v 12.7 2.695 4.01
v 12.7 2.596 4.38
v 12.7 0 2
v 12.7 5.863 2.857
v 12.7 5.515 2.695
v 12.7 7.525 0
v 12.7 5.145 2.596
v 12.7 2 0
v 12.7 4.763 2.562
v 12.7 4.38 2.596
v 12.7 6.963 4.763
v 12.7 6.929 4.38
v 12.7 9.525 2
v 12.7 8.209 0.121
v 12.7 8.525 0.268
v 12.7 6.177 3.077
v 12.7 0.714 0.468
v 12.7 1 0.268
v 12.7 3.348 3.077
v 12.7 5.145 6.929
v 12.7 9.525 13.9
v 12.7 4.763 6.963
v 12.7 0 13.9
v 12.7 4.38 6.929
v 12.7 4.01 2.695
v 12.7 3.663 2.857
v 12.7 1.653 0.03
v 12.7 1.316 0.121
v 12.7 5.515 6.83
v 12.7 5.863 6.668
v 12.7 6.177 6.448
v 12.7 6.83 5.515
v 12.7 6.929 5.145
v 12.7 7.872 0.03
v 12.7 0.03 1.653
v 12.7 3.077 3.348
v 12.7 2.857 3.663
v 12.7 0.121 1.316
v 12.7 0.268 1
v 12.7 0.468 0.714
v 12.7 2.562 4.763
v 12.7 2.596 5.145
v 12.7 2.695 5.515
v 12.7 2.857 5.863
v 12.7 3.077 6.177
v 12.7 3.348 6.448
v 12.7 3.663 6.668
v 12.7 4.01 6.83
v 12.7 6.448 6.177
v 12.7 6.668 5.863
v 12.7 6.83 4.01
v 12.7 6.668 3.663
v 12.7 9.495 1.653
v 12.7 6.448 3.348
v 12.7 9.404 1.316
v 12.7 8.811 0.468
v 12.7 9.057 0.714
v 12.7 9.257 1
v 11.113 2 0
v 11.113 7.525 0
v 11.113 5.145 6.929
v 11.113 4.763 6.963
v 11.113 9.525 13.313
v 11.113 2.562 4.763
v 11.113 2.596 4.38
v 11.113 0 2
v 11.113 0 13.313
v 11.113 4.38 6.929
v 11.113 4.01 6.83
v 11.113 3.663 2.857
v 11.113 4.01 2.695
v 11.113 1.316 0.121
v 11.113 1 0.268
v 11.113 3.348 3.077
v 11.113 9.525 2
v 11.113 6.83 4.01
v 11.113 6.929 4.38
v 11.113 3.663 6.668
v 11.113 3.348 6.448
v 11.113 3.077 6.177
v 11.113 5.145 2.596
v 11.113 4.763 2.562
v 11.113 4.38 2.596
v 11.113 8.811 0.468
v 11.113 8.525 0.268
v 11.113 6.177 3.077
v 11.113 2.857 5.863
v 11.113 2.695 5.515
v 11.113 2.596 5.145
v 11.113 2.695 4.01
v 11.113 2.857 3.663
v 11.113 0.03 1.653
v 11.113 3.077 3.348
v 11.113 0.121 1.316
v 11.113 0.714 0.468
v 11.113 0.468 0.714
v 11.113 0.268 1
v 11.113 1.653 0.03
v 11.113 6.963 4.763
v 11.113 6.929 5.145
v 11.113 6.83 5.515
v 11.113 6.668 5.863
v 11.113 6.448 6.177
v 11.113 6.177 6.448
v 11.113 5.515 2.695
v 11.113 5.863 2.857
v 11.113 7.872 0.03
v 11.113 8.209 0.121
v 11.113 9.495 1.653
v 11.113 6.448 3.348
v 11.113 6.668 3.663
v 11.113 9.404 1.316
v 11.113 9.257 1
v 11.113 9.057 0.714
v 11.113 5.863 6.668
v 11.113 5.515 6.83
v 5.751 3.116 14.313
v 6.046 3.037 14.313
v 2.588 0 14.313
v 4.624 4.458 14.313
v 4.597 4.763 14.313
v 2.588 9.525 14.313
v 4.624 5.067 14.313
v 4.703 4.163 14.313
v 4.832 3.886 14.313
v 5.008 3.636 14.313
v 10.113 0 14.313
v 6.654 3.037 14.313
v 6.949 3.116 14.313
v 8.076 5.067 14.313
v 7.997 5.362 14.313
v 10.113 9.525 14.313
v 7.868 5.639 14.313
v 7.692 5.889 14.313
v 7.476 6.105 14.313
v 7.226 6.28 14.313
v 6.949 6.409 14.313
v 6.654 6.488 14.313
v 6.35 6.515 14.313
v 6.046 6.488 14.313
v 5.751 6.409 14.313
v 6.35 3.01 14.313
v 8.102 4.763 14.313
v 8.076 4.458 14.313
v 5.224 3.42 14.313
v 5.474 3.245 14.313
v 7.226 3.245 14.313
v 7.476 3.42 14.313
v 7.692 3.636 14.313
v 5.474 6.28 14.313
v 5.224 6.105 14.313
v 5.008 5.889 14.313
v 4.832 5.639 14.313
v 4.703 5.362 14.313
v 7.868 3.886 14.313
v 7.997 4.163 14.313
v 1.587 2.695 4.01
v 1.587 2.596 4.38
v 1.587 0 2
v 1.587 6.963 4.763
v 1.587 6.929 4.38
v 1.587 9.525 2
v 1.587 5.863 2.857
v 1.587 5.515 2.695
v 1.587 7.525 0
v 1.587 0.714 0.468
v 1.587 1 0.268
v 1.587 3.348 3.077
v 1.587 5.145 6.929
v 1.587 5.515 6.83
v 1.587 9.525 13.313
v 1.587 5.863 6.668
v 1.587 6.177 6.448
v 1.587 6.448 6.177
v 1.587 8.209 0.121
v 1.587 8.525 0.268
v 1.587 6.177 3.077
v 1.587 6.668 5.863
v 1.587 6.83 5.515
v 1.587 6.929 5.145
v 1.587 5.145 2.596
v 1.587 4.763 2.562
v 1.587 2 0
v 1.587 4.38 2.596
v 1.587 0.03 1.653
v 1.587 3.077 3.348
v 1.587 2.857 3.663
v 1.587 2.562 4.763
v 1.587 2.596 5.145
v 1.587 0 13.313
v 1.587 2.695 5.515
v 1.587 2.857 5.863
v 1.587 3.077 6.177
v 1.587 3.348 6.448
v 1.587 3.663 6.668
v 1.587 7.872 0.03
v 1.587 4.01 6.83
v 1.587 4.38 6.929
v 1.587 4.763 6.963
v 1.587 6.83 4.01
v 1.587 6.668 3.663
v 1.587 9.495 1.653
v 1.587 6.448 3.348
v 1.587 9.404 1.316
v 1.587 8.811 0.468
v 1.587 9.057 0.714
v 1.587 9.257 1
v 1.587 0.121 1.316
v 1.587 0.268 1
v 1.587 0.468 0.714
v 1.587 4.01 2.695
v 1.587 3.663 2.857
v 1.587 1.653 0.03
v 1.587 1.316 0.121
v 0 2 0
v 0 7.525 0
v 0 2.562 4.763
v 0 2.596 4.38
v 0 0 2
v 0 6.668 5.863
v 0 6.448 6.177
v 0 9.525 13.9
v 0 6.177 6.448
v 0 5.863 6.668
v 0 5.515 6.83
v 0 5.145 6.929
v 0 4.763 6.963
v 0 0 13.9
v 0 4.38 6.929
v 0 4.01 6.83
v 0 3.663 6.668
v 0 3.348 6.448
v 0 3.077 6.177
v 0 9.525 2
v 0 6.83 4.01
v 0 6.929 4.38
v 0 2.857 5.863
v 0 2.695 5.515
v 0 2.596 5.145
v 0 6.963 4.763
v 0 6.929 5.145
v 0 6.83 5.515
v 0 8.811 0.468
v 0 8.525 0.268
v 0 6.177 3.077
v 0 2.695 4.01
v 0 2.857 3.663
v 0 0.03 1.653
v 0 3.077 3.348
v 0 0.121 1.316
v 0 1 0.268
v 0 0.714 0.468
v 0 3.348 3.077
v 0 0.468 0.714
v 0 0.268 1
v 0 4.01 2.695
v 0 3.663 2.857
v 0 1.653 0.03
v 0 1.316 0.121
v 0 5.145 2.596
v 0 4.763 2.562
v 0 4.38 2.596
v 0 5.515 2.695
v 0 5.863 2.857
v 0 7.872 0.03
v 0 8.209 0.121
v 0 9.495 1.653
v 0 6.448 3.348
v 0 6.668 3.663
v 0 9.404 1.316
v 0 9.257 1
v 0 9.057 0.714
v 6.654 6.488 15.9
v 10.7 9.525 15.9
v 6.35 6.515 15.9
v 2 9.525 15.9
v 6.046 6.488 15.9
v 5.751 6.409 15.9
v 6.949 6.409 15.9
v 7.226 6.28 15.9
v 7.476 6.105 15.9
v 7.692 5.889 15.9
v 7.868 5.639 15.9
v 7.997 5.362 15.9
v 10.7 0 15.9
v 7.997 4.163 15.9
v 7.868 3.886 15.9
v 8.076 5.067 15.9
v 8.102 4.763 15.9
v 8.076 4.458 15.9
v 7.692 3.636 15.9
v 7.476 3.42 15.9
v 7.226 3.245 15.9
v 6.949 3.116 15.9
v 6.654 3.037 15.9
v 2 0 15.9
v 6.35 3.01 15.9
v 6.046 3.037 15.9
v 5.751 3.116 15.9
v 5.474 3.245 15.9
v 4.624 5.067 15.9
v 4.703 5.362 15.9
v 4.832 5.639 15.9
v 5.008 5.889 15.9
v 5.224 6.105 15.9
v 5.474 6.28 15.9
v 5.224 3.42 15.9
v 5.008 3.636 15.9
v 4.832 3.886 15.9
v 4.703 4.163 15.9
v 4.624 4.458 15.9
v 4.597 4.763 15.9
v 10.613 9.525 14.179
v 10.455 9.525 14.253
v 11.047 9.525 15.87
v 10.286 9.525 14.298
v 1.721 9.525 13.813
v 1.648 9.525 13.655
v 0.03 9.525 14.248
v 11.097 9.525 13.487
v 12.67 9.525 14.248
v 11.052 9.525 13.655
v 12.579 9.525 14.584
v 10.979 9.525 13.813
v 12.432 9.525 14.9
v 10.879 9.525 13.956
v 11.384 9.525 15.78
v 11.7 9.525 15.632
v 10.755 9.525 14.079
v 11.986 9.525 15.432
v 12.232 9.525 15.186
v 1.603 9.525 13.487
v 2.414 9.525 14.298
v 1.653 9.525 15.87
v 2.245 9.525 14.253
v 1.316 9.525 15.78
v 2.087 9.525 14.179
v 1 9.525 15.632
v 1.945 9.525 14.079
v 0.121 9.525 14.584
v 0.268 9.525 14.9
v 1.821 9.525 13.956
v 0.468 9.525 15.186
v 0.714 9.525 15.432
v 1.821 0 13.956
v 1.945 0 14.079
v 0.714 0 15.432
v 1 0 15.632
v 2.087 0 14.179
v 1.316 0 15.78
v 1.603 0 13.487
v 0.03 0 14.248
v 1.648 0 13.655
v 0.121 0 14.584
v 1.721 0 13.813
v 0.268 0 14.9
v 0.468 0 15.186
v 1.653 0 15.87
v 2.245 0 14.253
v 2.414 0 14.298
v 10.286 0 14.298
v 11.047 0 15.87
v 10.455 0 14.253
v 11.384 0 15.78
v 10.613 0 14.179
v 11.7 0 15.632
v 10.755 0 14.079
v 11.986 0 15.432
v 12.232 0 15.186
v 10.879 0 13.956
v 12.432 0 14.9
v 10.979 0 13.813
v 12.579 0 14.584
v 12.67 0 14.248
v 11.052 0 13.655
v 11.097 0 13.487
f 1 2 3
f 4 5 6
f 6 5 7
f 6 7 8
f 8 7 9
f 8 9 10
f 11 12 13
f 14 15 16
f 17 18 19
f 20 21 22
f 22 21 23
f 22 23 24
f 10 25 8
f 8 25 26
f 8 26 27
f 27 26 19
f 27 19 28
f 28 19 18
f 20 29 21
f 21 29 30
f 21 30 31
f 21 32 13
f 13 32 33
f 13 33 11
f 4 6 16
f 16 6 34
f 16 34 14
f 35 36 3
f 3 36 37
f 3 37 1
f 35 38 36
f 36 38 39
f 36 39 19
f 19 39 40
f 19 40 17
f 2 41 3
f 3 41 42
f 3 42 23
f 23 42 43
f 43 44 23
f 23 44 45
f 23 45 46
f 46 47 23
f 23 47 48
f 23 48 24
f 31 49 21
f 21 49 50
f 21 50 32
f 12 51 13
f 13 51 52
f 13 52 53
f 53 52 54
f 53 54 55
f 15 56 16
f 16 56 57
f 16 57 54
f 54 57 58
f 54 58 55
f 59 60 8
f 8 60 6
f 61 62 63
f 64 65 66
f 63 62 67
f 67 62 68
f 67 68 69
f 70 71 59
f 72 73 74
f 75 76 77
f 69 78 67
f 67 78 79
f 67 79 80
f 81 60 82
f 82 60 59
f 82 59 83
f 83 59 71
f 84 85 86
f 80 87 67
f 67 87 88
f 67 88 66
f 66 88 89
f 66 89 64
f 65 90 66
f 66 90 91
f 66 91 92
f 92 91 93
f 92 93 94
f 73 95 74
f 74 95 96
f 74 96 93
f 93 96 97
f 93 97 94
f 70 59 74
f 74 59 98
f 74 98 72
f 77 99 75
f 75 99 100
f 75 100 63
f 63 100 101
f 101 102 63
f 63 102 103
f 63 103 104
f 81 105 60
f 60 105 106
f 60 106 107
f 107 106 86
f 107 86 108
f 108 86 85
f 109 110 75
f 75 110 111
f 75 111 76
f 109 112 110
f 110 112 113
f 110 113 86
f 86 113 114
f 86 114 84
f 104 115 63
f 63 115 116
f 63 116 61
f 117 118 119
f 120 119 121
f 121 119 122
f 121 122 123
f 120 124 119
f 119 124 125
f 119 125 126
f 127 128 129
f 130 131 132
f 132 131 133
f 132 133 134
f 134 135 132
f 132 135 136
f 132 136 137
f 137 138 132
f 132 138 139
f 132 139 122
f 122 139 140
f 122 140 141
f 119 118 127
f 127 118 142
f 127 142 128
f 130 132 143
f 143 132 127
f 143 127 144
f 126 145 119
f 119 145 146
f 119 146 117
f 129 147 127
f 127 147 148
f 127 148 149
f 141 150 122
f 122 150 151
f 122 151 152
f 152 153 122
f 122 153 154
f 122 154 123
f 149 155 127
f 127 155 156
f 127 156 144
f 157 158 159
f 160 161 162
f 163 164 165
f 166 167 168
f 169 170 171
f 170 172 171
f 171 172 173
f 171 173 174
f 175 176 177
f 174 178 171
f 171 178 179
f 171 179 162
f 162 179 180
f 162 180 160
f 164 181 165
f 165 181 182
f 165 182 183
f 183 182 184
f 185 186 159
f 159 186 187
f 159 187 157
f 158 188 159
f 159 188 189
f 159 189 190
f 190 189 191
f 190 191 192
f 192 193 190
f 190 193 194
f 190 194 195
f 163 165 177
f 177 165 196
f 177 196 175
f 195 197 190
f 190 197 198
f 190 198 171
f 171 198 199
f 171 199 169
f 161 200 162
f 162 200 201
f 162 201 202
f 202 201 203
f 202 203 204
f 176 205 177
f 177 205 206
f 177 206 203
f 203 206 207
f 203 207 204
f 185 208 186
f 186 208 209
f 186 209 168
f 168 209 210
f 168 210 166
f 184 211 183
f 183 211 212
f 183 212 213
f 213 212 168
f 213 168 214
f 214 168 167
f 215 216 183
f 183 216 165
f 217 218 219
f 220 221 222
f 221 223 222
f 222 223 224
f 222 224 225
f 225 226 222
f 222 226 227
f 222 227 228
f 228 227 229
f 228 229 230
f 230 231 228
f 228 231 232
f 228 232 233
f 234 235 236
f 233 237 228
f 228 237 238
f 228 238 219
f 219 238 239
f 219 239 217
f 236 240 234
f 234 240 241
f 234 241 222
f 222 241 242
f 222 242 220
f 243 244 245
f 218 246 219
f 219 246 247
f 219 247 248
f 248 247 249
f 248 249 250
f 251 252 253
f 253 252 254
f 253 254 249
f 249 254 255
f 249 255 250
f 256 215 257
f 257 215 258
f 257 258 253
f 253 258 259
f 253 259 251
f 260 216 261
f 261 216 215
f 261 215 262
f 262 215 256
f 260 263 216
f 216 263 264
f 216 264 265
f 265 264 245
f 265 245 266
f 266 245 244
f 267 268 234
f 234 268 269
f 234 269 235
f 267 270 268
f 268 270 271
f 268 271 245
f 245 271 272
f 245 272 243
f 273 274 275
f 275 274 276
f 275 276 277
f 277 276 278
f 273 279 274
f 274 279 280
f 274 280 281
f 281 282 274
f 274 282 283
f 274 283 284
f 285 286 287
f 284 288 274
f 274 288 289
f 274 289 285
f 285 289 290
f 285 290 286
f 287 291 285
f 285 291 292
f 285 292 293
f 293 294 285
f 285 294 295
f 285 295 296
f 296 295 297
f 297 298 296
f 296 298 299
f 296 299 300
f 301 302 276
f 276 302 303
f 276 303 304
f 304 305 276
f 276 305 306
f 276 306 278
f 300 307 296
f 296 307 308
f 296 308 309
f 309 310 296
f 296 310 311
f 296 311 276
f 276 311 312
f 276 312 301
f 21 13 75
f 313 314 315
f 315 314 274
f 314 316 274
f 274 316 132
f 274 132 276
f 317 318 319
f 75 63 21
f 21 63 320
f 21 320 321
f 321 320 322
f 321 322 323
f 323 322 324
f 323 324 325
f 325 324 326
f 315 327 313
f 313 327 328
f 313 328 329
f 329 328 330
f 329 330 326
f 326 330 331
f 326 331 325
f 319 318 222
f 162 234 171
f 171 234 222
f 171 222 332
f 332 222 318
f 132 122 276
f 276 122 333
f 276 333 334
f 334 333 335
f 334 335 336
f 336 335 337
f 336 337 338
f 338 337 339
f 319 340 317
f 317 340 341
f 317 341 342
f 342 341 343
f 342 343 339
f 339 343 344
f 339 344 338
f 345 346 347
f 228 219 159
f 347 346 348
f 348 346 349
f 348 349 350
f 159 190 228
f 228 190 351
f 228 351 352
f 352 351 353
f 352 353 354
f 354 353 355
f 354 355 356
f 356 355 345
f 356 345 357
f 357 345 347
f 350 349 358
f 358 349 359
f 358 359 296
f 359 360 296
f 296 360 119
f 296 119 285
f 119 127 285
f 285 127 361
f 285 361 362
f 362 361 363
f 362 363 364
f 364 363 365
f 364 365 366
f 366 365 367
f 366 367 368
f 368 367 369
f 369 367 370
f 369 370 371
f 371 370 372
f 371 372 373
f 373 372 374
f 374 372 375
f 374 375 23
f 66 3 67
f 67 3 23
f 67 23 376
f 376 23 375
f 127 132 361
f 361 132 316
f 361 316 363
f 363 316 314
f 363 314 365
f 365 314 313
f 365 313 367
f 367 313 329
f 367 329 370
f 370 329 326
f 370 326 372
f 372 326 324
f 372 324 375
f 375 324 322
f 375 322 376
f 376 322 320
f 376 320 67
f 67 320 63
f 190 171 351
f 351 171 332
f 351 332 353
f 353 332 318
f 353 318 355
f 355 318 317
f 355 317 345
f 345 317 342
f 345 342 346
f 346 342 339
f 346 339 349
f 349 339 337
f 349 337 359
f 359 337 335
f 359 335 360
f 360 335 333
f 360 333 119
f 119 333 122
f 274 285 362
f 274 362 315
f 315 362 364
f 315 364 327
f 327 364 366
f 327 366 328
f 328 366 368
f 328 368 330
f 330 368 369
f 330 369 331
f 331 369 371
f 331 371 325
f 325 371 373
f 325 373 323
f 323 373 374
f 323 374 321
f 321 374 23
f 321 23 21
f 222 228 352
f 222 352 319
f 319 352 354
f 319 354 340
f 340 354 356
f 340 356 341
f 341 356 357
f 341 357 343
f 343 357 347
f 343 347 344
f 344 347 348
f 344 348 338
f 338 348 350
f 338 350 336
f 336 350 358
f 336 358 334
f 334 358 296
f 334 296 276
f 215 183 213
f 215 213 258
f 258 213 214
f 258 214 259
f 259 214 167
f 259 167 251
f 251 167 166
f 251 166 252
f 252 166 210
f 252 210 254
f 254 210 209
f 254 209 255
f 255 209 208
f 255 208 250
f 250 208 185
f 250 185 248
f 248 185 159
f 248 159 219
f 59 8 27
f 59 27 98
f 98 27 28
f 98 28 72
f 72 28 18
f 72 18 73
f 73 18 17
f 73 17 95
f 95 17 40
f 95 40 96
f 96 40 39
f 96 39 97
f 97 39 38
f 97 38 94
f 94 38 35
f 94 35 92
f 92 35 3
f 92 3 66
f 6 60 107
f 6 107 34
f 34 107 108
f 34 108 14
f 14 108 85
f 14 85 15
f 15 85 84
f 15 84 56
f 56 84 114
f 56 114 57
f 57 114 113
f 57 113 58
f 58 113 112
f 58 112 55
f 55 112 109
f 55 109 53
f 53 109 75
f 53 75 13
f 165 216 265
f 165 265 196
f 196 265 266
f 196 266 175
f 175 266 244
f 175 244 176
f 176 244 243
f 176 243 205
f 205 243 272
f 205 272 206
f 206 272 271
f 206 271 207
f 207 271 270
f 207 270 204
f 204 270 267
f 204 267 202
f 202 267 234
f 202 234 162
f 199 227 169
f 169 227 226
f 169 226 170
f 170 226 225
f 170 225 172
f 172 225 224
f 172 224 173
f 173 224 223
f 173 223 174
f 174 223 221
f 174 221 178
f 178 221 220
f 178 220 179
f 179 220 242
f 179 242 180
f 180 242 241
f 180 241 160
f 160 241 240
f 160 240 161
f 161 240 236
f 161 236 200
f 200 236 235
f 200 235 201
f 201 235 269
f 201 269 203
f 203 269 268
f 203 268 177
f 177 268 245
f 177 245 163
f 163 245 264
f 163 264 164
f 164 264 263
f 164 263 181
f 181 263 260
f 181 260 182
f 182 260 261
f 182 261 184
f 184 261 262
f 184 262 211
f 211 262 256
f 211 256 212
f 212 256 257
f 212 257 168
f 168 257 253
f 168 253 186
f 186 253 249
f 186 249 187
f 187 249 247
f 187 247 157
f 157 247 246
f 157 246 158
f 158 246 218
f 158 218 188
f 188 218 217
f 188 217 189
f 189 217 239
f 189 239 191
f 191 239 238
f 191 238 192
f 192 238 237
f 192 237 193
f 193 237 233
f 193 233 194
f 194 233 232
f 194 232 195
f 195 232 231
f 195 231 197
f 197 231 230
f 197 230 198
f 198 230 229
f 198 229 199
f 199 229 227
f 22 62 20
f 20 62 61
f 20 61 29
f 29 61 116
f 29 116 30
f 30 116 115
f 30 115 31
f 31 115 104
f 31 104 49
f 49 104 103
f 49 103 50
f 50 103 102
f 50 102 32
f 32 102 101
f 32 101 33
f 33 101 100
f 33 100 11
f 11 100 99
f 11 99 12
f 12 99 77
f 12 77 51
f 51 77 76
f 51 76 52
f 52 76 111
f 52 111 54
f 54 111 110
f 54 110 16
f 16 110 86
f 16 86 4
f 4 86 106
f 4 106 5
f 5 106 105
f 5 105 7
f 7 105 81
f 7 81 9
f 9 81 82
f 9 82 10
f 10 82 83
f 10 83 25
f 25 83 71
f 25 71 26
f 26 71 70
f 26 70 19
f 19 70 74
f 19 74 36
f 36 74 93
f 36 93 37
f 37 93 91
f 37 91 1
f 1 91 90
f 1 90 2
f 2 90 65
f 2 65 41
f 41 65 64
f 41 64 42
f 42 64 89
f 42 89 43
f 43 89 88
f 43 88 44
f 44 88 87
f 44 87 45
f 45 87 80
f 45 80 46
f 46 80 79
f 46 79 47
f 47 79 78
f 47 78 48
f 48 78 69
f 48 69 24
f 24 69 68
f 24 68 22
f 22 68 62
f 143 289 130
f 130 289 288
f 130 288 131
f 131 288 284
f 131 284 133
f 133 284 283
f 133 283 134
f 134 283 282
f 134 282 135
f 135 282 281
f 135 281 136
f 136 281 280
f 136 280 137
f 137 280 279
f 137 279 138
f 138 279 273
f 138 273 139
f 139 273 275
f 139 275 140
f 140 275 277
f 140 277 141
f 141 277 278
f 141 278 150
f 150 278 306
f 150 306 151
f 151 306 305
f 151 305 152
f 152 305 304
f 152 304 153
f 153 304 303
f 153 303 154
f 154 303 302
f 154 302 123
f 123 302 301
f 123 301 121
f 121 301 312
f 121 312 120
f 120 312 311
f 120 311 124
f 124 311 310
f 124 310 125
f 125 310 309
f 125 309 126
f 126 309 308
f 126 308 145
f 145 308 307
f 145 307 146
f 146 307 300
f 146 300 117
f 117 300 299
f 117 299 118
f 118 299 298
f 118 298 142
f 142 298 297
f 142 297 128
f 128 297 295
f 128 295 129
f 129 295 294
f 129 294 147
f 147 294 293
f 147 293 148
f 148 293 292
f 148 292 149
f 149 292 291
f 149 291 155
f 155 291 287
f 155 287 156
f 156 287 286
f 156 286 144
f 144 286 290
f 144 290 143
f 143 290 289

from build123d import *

# Parameters (mm, degrees)
EXTRUDE_THIN1_DEPTH = 9.525
FILLET1_R           = 1
FILLET3_R           = 2
FILLET4_R           = 2
SKETCH2_R           = 2.2
CUT_EXTRUDE1_DEPTH  = 23.468607993
CUT_EXTRUDE2_REACH  = 24.469
SKETCH3_R           = 1.7525


with BuildPart() as part:
    # Sketch1 → Extrude-Thin1 (new body)
    with BuildSketch(Plane(origin=(0, 0, 0), x_dir=(1, 0, 0), z_dir=(0, 1, 0))):
        Polygon((0, 0), (0, -15.9004), (12.7, -15.9004), (12.7, 0), (11.1125, 0), (11.1125, -14.3129), (1.5875, -14.3129), (1.5875, 0), align=None)
    extrude(amount=EXTRUDE_THIN1_DEPTH)

    # Fillet1
    fillet1_edges = [part.edges().sort_by_distance(p)[0] for p in [
        (1.5875, 4.7625, 14.3129),
        (11.1125, 4.7625, 14.3129),
    ]]
    fillet(fillet1_edges, radius=FILLET1_R)

    # Fillet3
    fillet3_edges = [part.edges().sort_by_distance(p)[0] for p in [
        (12.7, 4.7625, 15.9004),
        (0, 4.7625, 15.9004),
    ]]
    fillet(fillet3_edges, radius=FILLET3_R)

    # Fillet4
    fillet4_edges = [part.edges().sort_by_distance(p)[0] for p in [
        (0.79375, 9.525, 0),
        (0.79375, 0, 0),
        (11.90625, 9.525, 0),
        (11.90625, 0, 0),
    ]]
    fillet(fillet4_edges, radius=FILLET4_R)

    # Sketch2 → Cut-Extrude1 (cut, through all)
    with BuildSketch(Plane.ZY):
        with Locations((4.7625, 4.7625)):
            Circle(SKETCH2_R)
    extrude(amount=-CUT_EXTRUDE1_DEPTH, mode=Mode.SUBTRACT)

    # Sketch3 → Cut-Extrude2 (cut, up to next)
    with BuildSketch(Plane.XY.offset(15.9004), mode=Mode.PRIVATE) as cut_extrude2_sk1:
        with Locations((6.35, 4.7625)):
            Circle(SKETCH3_R)
    cut_extrude2_tool1 = extrude(cut_extrude2_sk1.sketch, amount=-CUT_EXTRUDE2_REACH, mode=Mode.PRIVATE) & part.part
    add(cut_extrude2_tool1.solids().sort_by_distance((6.35, 4.7625, 15.9004))[0], mode=Mode.SUBTRACT)


solid = part.part
